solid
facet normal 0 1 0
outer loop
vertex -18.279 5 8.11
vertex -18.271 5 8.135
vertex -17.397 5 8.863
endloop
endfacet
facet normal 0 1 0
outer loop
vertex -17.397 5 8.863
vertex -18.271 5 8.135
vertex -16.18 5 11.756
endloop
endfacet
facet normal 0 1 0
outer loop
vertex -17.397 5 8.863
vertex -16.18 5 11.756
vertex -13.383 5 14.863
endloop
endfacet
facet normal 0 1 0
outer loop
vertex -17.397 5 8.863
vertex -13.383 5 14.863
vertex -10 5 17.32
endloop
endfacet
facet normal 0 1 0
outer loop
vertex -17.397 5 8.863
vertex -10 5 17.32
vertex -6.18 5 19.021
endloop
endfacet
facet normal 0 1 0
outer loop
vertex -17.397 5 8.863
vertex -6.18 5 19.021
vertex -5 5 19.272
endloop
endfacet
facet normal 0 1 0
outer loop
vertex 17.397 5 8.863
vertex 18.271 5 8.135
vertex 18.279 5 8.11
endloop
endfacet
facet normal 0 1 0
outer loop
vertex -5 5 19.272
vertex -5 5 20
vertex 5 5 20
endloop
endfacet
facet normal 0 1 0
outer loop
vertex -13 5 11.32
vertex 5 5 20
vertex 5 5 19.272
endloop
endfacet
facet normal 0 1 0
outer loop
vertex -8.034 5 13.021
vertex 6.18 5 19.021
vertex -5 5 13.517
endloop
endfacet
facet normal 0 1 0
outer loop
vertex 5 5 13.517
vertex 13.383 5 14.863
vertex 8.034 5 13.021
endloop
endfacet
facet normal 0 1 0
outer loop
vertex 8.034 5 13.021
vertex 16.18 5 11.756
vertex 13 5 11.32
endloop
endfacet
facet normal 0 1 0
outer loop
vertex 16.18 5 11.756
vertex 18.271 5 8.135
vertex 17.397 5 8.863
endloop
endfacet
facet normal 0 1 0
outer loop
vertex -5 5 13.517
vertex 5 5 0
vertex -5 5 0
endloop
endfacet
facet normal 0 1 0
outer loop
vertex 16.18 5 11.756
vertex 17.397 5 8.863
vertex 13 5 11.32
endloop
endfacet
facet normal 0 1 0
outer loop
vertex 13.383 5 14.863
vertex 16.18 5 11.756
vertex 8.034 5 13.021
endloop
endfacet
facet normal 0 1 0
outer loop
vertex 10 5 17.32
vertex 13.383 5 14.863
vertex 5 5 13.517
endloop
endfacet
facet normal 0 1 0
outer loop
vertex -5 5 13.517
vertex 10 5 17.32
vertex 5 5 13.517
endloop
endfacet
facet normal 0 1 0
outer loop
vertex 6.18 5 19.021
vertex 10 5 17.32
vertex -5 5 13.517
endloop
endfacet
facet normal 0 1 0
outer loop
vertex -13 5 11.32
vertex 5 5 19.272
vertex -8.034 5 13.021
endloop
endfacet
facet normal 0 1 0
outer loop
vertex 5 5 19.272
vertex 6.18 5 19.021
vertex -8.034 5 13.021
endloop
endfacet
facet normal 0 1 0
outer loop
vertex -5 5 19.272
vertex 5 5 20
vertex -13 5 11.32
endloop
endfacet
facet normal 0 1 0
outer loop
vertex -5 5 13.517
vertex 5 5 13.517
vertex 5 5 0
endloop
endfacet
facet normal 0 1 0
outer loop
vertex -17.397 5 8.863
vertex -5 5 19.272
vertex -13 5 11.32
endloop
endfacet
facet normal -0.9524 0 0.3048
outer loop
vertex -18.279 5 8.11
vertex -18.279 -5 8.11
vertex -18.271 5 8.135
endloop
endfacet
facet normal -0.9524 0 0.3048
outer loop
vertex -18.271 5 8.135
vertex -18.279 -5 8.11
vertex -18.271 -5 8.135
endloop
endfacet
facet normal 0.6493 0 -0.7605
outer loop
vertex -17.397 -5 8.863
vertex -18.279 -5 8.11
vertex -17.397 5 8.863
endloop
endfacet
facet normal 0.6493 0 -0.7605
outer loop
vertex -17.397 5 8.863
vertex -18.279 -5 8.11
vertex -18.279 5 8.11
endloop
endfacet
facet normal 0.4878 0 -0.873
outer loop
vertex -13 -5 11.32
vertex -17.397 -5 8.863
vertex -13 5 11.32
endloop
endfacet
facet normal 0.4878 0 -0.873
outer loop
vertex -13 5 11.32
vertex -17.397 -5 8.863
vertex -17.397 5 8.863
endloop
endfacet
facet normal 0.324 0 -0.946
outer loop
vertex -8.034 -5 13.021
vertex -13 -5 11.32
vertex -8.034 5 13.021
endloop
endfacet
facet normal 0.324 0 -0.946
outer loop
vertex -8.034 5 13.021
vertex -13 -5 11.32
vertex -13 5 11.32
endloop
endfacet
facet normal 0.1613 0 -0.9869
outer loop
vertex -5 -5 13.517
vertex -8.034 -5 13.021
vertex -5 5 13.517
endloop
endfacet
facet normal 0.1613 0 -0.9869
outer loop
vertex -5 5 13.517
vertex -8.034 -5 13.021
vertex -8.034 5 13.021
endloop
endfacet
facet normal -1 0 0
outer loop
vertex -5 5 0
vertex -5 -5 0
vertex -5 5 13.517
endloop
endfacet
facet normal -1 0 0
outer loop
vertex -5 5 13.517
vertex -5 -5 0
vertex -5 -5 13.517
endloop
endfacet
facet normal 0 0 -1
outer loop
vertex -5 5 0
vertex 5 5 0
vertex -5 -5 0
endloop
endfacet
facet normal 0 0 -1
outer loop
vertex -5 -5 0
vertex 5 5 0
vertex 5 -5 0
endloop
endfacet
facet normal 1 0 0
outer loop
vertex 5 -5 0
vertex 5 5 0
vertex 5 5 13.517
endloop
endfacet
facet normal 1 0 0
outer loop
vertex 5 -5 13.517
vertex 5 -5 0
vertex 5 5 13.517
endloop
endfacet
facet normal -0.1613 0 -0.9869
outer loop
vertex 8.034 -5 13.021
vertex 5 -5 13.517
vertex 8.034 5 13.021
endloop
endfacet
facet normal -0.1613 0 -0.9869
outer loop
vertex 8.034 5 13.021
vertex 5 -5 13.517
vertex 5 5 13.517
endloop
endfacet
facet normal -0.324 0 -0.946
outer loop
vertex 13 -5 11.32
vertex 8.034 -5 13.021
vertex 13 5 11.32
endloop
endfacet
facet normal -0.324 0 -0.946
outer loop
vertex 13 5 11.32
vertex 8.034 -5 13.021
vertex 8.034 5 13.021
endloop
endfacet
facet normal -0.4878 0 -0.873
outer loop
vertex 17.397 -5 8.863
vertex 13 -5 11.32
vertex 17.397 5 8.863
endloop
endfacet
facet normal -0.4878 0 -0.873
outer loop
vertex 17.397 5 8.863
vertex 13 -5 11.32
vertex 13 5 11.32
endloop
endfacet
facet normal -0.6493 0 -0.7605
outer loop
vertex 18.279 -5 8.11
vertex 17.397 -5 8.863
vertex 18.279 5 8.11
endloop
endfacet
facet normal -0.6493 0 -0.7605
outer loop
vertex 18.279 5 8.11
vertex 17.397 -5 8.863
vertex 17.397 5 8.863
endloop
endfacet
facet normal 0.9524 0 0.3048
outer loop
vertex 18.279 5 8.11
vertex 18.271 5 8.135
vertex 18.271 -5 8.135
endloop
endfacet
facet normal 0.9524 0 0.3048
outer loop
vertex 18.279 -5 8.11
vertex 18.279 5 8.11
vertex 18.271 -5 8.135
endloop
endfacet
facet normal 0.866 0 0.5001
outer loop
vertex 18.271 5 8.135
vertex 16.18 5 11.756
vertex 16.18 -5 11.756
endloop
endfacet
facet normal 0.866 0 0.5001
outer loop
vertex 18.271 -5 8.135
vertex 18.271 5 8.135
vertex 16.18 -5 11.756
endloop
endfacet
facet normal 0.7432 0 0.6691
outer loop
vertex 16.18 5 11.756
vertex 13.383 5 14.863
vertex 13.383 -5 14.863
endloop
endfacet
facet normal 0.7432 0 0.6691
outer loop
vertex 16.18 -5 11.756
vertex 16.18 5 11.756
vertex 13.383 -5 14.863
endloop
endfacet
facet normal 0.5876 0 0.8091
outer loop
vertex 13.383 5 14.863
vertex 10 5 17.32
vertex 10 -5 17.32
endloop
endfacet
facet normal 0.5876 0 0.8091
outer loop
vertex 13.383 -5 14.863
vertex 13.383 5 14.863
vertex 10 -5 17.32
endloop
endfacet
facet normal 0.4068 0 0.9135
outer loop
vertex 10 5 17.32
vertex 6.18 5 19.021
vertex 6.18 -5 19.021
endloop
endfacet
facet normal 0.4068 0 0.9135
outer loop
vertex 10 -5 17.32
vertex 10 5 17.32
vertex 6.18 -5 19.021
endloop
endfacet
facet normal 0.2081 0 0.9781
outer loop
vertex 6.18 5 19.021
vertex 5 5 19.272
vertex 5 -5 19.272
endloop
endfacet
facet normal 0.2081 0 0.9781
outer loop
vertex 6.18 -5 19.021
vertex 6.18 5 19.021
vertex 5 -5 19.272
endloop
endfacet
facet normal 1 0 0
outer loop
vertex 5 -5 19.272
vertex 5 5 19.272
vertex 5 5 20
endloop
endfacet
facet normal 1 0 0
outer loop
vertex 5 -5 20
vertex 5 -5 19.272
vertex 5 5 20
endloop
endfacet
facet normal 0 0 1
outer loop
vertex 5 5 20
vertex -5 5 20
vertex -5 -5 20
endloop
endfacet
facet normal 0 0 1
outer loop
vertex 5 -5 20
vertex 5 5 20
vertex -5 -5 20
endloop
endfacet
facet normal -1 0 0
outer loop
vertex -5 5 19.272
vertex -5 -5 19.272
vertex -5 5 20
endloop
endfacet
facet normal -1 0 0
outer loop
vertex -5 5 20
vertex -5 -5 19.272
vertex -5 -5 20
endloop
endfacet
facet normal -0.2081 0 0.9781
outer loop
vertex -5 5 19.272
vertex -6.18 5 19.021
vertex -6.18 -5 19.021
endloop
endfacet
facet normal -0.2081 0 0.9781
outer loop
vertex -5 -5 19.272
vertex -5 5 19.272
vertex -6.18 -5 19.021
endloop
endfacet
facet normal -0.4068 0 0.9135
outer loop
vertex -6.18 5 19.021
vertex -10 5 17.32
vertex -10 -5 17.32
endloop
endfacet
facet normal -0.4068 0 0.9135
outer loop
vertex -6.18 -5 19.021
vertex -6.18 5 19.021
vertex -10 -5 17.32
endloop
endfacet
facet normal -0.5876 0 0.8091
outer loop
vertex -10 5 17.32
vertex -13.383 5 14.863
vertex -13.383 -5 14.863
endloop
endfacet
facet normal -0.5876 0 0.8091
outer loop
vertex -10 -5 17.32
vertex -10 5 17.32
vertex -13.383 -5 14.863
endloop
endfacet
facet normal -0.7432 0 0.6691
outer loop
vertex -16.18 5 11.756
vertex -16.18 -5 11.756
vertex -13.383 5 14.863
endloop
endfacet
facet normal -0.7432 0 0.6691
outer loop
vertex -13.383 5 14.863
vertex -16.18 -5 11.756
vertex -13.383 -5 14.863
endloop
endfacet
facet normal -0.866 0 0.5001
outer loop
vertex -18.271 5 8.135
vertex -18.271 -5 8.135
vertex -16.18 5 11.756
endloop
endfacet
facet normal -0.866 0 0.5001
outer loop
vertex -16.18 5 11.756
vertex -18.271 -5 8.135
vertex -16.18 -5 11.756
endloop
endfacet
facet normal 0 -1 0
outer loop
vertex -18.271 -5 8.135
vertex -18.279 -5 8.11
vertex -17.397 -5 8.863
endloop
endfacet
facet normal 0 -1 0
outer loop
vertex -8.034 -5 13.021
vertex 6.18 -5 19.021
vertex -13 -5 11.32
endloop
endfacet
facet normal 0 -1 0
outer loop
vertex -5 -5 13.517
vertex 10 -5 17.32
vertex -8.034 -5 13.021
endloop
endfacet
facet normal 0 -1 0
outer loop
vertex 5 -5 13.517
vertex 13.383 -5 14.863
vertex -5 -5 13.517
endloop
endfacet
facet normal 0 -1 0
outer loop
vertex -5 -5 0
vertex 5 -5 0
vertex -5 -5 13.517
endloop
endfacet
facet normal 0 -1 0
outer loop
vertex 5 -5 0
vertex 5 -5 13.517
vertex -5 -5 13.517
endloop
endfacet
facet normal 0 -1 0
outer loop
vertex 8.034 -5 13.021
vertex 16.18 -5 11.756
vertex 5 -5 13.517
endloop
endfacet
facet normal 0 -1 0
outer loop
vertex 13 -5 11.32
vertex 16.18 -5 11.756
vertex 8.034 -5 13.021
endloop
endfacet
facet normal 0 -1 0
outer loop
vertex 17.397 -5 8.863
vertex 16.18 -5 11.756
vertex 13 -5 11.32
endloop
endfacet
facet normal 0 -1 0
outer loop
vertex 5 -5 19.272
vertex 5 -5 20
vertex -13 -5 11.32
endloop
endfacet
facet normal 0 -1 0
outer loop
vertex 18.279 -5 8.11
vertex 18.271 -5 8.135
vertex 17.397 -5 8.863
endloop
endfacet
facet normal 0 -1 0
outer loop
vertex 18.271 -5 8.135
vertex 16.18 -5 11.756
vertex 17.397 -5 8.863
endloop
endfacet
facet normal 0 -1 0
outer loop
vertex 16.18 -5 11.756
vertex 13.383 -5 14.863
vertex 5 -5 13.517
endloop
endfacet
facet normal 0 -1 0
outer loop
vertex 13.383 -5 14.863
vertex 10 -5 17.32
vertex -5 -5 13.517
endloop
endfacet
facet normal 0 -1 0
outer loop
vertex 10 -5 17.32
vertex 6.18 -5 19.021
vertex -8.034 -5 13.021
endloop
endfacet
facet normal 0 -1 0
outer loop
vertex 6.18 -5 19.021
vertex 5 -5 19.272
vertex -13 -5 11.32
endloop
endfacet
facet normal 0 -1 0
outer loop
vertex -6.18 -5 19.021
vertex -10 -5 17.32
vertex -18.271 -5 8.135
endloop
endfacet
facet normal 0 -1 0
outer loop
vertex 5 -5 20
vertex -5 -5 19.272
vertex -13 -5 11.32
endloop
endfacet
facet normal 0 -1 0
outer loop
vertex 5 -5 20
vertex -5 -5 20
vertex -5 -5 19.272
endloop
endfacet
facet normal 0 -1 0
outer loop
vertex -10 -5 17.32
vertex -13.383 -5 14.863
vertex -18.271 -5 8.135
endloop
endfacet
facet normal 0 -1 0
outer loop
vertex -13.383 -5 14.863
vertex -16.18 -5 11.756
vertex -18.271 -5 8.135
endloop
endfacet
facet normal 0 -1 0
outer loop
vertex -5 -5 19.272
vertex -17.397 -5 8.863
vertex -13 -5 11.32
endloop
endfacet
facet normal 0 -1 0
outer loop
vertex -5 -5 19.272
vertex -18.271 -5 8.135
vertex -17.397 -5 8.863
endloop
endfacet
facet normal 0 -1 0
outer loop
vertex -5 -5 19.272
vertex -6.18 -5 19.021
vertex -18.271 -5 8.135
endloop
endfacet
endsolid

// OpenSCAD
scale([2,2,2])
rotate([90,0,0]){
union(){
difference(){
cylinder(r=10,h=5,center=true);
translate([0,-3,0])
scale([1.3,1,1])
cylinder(r=10,h=10,center=true);
}
translate([0,5,0])
cube([5,10,5],center=true);
}
}
